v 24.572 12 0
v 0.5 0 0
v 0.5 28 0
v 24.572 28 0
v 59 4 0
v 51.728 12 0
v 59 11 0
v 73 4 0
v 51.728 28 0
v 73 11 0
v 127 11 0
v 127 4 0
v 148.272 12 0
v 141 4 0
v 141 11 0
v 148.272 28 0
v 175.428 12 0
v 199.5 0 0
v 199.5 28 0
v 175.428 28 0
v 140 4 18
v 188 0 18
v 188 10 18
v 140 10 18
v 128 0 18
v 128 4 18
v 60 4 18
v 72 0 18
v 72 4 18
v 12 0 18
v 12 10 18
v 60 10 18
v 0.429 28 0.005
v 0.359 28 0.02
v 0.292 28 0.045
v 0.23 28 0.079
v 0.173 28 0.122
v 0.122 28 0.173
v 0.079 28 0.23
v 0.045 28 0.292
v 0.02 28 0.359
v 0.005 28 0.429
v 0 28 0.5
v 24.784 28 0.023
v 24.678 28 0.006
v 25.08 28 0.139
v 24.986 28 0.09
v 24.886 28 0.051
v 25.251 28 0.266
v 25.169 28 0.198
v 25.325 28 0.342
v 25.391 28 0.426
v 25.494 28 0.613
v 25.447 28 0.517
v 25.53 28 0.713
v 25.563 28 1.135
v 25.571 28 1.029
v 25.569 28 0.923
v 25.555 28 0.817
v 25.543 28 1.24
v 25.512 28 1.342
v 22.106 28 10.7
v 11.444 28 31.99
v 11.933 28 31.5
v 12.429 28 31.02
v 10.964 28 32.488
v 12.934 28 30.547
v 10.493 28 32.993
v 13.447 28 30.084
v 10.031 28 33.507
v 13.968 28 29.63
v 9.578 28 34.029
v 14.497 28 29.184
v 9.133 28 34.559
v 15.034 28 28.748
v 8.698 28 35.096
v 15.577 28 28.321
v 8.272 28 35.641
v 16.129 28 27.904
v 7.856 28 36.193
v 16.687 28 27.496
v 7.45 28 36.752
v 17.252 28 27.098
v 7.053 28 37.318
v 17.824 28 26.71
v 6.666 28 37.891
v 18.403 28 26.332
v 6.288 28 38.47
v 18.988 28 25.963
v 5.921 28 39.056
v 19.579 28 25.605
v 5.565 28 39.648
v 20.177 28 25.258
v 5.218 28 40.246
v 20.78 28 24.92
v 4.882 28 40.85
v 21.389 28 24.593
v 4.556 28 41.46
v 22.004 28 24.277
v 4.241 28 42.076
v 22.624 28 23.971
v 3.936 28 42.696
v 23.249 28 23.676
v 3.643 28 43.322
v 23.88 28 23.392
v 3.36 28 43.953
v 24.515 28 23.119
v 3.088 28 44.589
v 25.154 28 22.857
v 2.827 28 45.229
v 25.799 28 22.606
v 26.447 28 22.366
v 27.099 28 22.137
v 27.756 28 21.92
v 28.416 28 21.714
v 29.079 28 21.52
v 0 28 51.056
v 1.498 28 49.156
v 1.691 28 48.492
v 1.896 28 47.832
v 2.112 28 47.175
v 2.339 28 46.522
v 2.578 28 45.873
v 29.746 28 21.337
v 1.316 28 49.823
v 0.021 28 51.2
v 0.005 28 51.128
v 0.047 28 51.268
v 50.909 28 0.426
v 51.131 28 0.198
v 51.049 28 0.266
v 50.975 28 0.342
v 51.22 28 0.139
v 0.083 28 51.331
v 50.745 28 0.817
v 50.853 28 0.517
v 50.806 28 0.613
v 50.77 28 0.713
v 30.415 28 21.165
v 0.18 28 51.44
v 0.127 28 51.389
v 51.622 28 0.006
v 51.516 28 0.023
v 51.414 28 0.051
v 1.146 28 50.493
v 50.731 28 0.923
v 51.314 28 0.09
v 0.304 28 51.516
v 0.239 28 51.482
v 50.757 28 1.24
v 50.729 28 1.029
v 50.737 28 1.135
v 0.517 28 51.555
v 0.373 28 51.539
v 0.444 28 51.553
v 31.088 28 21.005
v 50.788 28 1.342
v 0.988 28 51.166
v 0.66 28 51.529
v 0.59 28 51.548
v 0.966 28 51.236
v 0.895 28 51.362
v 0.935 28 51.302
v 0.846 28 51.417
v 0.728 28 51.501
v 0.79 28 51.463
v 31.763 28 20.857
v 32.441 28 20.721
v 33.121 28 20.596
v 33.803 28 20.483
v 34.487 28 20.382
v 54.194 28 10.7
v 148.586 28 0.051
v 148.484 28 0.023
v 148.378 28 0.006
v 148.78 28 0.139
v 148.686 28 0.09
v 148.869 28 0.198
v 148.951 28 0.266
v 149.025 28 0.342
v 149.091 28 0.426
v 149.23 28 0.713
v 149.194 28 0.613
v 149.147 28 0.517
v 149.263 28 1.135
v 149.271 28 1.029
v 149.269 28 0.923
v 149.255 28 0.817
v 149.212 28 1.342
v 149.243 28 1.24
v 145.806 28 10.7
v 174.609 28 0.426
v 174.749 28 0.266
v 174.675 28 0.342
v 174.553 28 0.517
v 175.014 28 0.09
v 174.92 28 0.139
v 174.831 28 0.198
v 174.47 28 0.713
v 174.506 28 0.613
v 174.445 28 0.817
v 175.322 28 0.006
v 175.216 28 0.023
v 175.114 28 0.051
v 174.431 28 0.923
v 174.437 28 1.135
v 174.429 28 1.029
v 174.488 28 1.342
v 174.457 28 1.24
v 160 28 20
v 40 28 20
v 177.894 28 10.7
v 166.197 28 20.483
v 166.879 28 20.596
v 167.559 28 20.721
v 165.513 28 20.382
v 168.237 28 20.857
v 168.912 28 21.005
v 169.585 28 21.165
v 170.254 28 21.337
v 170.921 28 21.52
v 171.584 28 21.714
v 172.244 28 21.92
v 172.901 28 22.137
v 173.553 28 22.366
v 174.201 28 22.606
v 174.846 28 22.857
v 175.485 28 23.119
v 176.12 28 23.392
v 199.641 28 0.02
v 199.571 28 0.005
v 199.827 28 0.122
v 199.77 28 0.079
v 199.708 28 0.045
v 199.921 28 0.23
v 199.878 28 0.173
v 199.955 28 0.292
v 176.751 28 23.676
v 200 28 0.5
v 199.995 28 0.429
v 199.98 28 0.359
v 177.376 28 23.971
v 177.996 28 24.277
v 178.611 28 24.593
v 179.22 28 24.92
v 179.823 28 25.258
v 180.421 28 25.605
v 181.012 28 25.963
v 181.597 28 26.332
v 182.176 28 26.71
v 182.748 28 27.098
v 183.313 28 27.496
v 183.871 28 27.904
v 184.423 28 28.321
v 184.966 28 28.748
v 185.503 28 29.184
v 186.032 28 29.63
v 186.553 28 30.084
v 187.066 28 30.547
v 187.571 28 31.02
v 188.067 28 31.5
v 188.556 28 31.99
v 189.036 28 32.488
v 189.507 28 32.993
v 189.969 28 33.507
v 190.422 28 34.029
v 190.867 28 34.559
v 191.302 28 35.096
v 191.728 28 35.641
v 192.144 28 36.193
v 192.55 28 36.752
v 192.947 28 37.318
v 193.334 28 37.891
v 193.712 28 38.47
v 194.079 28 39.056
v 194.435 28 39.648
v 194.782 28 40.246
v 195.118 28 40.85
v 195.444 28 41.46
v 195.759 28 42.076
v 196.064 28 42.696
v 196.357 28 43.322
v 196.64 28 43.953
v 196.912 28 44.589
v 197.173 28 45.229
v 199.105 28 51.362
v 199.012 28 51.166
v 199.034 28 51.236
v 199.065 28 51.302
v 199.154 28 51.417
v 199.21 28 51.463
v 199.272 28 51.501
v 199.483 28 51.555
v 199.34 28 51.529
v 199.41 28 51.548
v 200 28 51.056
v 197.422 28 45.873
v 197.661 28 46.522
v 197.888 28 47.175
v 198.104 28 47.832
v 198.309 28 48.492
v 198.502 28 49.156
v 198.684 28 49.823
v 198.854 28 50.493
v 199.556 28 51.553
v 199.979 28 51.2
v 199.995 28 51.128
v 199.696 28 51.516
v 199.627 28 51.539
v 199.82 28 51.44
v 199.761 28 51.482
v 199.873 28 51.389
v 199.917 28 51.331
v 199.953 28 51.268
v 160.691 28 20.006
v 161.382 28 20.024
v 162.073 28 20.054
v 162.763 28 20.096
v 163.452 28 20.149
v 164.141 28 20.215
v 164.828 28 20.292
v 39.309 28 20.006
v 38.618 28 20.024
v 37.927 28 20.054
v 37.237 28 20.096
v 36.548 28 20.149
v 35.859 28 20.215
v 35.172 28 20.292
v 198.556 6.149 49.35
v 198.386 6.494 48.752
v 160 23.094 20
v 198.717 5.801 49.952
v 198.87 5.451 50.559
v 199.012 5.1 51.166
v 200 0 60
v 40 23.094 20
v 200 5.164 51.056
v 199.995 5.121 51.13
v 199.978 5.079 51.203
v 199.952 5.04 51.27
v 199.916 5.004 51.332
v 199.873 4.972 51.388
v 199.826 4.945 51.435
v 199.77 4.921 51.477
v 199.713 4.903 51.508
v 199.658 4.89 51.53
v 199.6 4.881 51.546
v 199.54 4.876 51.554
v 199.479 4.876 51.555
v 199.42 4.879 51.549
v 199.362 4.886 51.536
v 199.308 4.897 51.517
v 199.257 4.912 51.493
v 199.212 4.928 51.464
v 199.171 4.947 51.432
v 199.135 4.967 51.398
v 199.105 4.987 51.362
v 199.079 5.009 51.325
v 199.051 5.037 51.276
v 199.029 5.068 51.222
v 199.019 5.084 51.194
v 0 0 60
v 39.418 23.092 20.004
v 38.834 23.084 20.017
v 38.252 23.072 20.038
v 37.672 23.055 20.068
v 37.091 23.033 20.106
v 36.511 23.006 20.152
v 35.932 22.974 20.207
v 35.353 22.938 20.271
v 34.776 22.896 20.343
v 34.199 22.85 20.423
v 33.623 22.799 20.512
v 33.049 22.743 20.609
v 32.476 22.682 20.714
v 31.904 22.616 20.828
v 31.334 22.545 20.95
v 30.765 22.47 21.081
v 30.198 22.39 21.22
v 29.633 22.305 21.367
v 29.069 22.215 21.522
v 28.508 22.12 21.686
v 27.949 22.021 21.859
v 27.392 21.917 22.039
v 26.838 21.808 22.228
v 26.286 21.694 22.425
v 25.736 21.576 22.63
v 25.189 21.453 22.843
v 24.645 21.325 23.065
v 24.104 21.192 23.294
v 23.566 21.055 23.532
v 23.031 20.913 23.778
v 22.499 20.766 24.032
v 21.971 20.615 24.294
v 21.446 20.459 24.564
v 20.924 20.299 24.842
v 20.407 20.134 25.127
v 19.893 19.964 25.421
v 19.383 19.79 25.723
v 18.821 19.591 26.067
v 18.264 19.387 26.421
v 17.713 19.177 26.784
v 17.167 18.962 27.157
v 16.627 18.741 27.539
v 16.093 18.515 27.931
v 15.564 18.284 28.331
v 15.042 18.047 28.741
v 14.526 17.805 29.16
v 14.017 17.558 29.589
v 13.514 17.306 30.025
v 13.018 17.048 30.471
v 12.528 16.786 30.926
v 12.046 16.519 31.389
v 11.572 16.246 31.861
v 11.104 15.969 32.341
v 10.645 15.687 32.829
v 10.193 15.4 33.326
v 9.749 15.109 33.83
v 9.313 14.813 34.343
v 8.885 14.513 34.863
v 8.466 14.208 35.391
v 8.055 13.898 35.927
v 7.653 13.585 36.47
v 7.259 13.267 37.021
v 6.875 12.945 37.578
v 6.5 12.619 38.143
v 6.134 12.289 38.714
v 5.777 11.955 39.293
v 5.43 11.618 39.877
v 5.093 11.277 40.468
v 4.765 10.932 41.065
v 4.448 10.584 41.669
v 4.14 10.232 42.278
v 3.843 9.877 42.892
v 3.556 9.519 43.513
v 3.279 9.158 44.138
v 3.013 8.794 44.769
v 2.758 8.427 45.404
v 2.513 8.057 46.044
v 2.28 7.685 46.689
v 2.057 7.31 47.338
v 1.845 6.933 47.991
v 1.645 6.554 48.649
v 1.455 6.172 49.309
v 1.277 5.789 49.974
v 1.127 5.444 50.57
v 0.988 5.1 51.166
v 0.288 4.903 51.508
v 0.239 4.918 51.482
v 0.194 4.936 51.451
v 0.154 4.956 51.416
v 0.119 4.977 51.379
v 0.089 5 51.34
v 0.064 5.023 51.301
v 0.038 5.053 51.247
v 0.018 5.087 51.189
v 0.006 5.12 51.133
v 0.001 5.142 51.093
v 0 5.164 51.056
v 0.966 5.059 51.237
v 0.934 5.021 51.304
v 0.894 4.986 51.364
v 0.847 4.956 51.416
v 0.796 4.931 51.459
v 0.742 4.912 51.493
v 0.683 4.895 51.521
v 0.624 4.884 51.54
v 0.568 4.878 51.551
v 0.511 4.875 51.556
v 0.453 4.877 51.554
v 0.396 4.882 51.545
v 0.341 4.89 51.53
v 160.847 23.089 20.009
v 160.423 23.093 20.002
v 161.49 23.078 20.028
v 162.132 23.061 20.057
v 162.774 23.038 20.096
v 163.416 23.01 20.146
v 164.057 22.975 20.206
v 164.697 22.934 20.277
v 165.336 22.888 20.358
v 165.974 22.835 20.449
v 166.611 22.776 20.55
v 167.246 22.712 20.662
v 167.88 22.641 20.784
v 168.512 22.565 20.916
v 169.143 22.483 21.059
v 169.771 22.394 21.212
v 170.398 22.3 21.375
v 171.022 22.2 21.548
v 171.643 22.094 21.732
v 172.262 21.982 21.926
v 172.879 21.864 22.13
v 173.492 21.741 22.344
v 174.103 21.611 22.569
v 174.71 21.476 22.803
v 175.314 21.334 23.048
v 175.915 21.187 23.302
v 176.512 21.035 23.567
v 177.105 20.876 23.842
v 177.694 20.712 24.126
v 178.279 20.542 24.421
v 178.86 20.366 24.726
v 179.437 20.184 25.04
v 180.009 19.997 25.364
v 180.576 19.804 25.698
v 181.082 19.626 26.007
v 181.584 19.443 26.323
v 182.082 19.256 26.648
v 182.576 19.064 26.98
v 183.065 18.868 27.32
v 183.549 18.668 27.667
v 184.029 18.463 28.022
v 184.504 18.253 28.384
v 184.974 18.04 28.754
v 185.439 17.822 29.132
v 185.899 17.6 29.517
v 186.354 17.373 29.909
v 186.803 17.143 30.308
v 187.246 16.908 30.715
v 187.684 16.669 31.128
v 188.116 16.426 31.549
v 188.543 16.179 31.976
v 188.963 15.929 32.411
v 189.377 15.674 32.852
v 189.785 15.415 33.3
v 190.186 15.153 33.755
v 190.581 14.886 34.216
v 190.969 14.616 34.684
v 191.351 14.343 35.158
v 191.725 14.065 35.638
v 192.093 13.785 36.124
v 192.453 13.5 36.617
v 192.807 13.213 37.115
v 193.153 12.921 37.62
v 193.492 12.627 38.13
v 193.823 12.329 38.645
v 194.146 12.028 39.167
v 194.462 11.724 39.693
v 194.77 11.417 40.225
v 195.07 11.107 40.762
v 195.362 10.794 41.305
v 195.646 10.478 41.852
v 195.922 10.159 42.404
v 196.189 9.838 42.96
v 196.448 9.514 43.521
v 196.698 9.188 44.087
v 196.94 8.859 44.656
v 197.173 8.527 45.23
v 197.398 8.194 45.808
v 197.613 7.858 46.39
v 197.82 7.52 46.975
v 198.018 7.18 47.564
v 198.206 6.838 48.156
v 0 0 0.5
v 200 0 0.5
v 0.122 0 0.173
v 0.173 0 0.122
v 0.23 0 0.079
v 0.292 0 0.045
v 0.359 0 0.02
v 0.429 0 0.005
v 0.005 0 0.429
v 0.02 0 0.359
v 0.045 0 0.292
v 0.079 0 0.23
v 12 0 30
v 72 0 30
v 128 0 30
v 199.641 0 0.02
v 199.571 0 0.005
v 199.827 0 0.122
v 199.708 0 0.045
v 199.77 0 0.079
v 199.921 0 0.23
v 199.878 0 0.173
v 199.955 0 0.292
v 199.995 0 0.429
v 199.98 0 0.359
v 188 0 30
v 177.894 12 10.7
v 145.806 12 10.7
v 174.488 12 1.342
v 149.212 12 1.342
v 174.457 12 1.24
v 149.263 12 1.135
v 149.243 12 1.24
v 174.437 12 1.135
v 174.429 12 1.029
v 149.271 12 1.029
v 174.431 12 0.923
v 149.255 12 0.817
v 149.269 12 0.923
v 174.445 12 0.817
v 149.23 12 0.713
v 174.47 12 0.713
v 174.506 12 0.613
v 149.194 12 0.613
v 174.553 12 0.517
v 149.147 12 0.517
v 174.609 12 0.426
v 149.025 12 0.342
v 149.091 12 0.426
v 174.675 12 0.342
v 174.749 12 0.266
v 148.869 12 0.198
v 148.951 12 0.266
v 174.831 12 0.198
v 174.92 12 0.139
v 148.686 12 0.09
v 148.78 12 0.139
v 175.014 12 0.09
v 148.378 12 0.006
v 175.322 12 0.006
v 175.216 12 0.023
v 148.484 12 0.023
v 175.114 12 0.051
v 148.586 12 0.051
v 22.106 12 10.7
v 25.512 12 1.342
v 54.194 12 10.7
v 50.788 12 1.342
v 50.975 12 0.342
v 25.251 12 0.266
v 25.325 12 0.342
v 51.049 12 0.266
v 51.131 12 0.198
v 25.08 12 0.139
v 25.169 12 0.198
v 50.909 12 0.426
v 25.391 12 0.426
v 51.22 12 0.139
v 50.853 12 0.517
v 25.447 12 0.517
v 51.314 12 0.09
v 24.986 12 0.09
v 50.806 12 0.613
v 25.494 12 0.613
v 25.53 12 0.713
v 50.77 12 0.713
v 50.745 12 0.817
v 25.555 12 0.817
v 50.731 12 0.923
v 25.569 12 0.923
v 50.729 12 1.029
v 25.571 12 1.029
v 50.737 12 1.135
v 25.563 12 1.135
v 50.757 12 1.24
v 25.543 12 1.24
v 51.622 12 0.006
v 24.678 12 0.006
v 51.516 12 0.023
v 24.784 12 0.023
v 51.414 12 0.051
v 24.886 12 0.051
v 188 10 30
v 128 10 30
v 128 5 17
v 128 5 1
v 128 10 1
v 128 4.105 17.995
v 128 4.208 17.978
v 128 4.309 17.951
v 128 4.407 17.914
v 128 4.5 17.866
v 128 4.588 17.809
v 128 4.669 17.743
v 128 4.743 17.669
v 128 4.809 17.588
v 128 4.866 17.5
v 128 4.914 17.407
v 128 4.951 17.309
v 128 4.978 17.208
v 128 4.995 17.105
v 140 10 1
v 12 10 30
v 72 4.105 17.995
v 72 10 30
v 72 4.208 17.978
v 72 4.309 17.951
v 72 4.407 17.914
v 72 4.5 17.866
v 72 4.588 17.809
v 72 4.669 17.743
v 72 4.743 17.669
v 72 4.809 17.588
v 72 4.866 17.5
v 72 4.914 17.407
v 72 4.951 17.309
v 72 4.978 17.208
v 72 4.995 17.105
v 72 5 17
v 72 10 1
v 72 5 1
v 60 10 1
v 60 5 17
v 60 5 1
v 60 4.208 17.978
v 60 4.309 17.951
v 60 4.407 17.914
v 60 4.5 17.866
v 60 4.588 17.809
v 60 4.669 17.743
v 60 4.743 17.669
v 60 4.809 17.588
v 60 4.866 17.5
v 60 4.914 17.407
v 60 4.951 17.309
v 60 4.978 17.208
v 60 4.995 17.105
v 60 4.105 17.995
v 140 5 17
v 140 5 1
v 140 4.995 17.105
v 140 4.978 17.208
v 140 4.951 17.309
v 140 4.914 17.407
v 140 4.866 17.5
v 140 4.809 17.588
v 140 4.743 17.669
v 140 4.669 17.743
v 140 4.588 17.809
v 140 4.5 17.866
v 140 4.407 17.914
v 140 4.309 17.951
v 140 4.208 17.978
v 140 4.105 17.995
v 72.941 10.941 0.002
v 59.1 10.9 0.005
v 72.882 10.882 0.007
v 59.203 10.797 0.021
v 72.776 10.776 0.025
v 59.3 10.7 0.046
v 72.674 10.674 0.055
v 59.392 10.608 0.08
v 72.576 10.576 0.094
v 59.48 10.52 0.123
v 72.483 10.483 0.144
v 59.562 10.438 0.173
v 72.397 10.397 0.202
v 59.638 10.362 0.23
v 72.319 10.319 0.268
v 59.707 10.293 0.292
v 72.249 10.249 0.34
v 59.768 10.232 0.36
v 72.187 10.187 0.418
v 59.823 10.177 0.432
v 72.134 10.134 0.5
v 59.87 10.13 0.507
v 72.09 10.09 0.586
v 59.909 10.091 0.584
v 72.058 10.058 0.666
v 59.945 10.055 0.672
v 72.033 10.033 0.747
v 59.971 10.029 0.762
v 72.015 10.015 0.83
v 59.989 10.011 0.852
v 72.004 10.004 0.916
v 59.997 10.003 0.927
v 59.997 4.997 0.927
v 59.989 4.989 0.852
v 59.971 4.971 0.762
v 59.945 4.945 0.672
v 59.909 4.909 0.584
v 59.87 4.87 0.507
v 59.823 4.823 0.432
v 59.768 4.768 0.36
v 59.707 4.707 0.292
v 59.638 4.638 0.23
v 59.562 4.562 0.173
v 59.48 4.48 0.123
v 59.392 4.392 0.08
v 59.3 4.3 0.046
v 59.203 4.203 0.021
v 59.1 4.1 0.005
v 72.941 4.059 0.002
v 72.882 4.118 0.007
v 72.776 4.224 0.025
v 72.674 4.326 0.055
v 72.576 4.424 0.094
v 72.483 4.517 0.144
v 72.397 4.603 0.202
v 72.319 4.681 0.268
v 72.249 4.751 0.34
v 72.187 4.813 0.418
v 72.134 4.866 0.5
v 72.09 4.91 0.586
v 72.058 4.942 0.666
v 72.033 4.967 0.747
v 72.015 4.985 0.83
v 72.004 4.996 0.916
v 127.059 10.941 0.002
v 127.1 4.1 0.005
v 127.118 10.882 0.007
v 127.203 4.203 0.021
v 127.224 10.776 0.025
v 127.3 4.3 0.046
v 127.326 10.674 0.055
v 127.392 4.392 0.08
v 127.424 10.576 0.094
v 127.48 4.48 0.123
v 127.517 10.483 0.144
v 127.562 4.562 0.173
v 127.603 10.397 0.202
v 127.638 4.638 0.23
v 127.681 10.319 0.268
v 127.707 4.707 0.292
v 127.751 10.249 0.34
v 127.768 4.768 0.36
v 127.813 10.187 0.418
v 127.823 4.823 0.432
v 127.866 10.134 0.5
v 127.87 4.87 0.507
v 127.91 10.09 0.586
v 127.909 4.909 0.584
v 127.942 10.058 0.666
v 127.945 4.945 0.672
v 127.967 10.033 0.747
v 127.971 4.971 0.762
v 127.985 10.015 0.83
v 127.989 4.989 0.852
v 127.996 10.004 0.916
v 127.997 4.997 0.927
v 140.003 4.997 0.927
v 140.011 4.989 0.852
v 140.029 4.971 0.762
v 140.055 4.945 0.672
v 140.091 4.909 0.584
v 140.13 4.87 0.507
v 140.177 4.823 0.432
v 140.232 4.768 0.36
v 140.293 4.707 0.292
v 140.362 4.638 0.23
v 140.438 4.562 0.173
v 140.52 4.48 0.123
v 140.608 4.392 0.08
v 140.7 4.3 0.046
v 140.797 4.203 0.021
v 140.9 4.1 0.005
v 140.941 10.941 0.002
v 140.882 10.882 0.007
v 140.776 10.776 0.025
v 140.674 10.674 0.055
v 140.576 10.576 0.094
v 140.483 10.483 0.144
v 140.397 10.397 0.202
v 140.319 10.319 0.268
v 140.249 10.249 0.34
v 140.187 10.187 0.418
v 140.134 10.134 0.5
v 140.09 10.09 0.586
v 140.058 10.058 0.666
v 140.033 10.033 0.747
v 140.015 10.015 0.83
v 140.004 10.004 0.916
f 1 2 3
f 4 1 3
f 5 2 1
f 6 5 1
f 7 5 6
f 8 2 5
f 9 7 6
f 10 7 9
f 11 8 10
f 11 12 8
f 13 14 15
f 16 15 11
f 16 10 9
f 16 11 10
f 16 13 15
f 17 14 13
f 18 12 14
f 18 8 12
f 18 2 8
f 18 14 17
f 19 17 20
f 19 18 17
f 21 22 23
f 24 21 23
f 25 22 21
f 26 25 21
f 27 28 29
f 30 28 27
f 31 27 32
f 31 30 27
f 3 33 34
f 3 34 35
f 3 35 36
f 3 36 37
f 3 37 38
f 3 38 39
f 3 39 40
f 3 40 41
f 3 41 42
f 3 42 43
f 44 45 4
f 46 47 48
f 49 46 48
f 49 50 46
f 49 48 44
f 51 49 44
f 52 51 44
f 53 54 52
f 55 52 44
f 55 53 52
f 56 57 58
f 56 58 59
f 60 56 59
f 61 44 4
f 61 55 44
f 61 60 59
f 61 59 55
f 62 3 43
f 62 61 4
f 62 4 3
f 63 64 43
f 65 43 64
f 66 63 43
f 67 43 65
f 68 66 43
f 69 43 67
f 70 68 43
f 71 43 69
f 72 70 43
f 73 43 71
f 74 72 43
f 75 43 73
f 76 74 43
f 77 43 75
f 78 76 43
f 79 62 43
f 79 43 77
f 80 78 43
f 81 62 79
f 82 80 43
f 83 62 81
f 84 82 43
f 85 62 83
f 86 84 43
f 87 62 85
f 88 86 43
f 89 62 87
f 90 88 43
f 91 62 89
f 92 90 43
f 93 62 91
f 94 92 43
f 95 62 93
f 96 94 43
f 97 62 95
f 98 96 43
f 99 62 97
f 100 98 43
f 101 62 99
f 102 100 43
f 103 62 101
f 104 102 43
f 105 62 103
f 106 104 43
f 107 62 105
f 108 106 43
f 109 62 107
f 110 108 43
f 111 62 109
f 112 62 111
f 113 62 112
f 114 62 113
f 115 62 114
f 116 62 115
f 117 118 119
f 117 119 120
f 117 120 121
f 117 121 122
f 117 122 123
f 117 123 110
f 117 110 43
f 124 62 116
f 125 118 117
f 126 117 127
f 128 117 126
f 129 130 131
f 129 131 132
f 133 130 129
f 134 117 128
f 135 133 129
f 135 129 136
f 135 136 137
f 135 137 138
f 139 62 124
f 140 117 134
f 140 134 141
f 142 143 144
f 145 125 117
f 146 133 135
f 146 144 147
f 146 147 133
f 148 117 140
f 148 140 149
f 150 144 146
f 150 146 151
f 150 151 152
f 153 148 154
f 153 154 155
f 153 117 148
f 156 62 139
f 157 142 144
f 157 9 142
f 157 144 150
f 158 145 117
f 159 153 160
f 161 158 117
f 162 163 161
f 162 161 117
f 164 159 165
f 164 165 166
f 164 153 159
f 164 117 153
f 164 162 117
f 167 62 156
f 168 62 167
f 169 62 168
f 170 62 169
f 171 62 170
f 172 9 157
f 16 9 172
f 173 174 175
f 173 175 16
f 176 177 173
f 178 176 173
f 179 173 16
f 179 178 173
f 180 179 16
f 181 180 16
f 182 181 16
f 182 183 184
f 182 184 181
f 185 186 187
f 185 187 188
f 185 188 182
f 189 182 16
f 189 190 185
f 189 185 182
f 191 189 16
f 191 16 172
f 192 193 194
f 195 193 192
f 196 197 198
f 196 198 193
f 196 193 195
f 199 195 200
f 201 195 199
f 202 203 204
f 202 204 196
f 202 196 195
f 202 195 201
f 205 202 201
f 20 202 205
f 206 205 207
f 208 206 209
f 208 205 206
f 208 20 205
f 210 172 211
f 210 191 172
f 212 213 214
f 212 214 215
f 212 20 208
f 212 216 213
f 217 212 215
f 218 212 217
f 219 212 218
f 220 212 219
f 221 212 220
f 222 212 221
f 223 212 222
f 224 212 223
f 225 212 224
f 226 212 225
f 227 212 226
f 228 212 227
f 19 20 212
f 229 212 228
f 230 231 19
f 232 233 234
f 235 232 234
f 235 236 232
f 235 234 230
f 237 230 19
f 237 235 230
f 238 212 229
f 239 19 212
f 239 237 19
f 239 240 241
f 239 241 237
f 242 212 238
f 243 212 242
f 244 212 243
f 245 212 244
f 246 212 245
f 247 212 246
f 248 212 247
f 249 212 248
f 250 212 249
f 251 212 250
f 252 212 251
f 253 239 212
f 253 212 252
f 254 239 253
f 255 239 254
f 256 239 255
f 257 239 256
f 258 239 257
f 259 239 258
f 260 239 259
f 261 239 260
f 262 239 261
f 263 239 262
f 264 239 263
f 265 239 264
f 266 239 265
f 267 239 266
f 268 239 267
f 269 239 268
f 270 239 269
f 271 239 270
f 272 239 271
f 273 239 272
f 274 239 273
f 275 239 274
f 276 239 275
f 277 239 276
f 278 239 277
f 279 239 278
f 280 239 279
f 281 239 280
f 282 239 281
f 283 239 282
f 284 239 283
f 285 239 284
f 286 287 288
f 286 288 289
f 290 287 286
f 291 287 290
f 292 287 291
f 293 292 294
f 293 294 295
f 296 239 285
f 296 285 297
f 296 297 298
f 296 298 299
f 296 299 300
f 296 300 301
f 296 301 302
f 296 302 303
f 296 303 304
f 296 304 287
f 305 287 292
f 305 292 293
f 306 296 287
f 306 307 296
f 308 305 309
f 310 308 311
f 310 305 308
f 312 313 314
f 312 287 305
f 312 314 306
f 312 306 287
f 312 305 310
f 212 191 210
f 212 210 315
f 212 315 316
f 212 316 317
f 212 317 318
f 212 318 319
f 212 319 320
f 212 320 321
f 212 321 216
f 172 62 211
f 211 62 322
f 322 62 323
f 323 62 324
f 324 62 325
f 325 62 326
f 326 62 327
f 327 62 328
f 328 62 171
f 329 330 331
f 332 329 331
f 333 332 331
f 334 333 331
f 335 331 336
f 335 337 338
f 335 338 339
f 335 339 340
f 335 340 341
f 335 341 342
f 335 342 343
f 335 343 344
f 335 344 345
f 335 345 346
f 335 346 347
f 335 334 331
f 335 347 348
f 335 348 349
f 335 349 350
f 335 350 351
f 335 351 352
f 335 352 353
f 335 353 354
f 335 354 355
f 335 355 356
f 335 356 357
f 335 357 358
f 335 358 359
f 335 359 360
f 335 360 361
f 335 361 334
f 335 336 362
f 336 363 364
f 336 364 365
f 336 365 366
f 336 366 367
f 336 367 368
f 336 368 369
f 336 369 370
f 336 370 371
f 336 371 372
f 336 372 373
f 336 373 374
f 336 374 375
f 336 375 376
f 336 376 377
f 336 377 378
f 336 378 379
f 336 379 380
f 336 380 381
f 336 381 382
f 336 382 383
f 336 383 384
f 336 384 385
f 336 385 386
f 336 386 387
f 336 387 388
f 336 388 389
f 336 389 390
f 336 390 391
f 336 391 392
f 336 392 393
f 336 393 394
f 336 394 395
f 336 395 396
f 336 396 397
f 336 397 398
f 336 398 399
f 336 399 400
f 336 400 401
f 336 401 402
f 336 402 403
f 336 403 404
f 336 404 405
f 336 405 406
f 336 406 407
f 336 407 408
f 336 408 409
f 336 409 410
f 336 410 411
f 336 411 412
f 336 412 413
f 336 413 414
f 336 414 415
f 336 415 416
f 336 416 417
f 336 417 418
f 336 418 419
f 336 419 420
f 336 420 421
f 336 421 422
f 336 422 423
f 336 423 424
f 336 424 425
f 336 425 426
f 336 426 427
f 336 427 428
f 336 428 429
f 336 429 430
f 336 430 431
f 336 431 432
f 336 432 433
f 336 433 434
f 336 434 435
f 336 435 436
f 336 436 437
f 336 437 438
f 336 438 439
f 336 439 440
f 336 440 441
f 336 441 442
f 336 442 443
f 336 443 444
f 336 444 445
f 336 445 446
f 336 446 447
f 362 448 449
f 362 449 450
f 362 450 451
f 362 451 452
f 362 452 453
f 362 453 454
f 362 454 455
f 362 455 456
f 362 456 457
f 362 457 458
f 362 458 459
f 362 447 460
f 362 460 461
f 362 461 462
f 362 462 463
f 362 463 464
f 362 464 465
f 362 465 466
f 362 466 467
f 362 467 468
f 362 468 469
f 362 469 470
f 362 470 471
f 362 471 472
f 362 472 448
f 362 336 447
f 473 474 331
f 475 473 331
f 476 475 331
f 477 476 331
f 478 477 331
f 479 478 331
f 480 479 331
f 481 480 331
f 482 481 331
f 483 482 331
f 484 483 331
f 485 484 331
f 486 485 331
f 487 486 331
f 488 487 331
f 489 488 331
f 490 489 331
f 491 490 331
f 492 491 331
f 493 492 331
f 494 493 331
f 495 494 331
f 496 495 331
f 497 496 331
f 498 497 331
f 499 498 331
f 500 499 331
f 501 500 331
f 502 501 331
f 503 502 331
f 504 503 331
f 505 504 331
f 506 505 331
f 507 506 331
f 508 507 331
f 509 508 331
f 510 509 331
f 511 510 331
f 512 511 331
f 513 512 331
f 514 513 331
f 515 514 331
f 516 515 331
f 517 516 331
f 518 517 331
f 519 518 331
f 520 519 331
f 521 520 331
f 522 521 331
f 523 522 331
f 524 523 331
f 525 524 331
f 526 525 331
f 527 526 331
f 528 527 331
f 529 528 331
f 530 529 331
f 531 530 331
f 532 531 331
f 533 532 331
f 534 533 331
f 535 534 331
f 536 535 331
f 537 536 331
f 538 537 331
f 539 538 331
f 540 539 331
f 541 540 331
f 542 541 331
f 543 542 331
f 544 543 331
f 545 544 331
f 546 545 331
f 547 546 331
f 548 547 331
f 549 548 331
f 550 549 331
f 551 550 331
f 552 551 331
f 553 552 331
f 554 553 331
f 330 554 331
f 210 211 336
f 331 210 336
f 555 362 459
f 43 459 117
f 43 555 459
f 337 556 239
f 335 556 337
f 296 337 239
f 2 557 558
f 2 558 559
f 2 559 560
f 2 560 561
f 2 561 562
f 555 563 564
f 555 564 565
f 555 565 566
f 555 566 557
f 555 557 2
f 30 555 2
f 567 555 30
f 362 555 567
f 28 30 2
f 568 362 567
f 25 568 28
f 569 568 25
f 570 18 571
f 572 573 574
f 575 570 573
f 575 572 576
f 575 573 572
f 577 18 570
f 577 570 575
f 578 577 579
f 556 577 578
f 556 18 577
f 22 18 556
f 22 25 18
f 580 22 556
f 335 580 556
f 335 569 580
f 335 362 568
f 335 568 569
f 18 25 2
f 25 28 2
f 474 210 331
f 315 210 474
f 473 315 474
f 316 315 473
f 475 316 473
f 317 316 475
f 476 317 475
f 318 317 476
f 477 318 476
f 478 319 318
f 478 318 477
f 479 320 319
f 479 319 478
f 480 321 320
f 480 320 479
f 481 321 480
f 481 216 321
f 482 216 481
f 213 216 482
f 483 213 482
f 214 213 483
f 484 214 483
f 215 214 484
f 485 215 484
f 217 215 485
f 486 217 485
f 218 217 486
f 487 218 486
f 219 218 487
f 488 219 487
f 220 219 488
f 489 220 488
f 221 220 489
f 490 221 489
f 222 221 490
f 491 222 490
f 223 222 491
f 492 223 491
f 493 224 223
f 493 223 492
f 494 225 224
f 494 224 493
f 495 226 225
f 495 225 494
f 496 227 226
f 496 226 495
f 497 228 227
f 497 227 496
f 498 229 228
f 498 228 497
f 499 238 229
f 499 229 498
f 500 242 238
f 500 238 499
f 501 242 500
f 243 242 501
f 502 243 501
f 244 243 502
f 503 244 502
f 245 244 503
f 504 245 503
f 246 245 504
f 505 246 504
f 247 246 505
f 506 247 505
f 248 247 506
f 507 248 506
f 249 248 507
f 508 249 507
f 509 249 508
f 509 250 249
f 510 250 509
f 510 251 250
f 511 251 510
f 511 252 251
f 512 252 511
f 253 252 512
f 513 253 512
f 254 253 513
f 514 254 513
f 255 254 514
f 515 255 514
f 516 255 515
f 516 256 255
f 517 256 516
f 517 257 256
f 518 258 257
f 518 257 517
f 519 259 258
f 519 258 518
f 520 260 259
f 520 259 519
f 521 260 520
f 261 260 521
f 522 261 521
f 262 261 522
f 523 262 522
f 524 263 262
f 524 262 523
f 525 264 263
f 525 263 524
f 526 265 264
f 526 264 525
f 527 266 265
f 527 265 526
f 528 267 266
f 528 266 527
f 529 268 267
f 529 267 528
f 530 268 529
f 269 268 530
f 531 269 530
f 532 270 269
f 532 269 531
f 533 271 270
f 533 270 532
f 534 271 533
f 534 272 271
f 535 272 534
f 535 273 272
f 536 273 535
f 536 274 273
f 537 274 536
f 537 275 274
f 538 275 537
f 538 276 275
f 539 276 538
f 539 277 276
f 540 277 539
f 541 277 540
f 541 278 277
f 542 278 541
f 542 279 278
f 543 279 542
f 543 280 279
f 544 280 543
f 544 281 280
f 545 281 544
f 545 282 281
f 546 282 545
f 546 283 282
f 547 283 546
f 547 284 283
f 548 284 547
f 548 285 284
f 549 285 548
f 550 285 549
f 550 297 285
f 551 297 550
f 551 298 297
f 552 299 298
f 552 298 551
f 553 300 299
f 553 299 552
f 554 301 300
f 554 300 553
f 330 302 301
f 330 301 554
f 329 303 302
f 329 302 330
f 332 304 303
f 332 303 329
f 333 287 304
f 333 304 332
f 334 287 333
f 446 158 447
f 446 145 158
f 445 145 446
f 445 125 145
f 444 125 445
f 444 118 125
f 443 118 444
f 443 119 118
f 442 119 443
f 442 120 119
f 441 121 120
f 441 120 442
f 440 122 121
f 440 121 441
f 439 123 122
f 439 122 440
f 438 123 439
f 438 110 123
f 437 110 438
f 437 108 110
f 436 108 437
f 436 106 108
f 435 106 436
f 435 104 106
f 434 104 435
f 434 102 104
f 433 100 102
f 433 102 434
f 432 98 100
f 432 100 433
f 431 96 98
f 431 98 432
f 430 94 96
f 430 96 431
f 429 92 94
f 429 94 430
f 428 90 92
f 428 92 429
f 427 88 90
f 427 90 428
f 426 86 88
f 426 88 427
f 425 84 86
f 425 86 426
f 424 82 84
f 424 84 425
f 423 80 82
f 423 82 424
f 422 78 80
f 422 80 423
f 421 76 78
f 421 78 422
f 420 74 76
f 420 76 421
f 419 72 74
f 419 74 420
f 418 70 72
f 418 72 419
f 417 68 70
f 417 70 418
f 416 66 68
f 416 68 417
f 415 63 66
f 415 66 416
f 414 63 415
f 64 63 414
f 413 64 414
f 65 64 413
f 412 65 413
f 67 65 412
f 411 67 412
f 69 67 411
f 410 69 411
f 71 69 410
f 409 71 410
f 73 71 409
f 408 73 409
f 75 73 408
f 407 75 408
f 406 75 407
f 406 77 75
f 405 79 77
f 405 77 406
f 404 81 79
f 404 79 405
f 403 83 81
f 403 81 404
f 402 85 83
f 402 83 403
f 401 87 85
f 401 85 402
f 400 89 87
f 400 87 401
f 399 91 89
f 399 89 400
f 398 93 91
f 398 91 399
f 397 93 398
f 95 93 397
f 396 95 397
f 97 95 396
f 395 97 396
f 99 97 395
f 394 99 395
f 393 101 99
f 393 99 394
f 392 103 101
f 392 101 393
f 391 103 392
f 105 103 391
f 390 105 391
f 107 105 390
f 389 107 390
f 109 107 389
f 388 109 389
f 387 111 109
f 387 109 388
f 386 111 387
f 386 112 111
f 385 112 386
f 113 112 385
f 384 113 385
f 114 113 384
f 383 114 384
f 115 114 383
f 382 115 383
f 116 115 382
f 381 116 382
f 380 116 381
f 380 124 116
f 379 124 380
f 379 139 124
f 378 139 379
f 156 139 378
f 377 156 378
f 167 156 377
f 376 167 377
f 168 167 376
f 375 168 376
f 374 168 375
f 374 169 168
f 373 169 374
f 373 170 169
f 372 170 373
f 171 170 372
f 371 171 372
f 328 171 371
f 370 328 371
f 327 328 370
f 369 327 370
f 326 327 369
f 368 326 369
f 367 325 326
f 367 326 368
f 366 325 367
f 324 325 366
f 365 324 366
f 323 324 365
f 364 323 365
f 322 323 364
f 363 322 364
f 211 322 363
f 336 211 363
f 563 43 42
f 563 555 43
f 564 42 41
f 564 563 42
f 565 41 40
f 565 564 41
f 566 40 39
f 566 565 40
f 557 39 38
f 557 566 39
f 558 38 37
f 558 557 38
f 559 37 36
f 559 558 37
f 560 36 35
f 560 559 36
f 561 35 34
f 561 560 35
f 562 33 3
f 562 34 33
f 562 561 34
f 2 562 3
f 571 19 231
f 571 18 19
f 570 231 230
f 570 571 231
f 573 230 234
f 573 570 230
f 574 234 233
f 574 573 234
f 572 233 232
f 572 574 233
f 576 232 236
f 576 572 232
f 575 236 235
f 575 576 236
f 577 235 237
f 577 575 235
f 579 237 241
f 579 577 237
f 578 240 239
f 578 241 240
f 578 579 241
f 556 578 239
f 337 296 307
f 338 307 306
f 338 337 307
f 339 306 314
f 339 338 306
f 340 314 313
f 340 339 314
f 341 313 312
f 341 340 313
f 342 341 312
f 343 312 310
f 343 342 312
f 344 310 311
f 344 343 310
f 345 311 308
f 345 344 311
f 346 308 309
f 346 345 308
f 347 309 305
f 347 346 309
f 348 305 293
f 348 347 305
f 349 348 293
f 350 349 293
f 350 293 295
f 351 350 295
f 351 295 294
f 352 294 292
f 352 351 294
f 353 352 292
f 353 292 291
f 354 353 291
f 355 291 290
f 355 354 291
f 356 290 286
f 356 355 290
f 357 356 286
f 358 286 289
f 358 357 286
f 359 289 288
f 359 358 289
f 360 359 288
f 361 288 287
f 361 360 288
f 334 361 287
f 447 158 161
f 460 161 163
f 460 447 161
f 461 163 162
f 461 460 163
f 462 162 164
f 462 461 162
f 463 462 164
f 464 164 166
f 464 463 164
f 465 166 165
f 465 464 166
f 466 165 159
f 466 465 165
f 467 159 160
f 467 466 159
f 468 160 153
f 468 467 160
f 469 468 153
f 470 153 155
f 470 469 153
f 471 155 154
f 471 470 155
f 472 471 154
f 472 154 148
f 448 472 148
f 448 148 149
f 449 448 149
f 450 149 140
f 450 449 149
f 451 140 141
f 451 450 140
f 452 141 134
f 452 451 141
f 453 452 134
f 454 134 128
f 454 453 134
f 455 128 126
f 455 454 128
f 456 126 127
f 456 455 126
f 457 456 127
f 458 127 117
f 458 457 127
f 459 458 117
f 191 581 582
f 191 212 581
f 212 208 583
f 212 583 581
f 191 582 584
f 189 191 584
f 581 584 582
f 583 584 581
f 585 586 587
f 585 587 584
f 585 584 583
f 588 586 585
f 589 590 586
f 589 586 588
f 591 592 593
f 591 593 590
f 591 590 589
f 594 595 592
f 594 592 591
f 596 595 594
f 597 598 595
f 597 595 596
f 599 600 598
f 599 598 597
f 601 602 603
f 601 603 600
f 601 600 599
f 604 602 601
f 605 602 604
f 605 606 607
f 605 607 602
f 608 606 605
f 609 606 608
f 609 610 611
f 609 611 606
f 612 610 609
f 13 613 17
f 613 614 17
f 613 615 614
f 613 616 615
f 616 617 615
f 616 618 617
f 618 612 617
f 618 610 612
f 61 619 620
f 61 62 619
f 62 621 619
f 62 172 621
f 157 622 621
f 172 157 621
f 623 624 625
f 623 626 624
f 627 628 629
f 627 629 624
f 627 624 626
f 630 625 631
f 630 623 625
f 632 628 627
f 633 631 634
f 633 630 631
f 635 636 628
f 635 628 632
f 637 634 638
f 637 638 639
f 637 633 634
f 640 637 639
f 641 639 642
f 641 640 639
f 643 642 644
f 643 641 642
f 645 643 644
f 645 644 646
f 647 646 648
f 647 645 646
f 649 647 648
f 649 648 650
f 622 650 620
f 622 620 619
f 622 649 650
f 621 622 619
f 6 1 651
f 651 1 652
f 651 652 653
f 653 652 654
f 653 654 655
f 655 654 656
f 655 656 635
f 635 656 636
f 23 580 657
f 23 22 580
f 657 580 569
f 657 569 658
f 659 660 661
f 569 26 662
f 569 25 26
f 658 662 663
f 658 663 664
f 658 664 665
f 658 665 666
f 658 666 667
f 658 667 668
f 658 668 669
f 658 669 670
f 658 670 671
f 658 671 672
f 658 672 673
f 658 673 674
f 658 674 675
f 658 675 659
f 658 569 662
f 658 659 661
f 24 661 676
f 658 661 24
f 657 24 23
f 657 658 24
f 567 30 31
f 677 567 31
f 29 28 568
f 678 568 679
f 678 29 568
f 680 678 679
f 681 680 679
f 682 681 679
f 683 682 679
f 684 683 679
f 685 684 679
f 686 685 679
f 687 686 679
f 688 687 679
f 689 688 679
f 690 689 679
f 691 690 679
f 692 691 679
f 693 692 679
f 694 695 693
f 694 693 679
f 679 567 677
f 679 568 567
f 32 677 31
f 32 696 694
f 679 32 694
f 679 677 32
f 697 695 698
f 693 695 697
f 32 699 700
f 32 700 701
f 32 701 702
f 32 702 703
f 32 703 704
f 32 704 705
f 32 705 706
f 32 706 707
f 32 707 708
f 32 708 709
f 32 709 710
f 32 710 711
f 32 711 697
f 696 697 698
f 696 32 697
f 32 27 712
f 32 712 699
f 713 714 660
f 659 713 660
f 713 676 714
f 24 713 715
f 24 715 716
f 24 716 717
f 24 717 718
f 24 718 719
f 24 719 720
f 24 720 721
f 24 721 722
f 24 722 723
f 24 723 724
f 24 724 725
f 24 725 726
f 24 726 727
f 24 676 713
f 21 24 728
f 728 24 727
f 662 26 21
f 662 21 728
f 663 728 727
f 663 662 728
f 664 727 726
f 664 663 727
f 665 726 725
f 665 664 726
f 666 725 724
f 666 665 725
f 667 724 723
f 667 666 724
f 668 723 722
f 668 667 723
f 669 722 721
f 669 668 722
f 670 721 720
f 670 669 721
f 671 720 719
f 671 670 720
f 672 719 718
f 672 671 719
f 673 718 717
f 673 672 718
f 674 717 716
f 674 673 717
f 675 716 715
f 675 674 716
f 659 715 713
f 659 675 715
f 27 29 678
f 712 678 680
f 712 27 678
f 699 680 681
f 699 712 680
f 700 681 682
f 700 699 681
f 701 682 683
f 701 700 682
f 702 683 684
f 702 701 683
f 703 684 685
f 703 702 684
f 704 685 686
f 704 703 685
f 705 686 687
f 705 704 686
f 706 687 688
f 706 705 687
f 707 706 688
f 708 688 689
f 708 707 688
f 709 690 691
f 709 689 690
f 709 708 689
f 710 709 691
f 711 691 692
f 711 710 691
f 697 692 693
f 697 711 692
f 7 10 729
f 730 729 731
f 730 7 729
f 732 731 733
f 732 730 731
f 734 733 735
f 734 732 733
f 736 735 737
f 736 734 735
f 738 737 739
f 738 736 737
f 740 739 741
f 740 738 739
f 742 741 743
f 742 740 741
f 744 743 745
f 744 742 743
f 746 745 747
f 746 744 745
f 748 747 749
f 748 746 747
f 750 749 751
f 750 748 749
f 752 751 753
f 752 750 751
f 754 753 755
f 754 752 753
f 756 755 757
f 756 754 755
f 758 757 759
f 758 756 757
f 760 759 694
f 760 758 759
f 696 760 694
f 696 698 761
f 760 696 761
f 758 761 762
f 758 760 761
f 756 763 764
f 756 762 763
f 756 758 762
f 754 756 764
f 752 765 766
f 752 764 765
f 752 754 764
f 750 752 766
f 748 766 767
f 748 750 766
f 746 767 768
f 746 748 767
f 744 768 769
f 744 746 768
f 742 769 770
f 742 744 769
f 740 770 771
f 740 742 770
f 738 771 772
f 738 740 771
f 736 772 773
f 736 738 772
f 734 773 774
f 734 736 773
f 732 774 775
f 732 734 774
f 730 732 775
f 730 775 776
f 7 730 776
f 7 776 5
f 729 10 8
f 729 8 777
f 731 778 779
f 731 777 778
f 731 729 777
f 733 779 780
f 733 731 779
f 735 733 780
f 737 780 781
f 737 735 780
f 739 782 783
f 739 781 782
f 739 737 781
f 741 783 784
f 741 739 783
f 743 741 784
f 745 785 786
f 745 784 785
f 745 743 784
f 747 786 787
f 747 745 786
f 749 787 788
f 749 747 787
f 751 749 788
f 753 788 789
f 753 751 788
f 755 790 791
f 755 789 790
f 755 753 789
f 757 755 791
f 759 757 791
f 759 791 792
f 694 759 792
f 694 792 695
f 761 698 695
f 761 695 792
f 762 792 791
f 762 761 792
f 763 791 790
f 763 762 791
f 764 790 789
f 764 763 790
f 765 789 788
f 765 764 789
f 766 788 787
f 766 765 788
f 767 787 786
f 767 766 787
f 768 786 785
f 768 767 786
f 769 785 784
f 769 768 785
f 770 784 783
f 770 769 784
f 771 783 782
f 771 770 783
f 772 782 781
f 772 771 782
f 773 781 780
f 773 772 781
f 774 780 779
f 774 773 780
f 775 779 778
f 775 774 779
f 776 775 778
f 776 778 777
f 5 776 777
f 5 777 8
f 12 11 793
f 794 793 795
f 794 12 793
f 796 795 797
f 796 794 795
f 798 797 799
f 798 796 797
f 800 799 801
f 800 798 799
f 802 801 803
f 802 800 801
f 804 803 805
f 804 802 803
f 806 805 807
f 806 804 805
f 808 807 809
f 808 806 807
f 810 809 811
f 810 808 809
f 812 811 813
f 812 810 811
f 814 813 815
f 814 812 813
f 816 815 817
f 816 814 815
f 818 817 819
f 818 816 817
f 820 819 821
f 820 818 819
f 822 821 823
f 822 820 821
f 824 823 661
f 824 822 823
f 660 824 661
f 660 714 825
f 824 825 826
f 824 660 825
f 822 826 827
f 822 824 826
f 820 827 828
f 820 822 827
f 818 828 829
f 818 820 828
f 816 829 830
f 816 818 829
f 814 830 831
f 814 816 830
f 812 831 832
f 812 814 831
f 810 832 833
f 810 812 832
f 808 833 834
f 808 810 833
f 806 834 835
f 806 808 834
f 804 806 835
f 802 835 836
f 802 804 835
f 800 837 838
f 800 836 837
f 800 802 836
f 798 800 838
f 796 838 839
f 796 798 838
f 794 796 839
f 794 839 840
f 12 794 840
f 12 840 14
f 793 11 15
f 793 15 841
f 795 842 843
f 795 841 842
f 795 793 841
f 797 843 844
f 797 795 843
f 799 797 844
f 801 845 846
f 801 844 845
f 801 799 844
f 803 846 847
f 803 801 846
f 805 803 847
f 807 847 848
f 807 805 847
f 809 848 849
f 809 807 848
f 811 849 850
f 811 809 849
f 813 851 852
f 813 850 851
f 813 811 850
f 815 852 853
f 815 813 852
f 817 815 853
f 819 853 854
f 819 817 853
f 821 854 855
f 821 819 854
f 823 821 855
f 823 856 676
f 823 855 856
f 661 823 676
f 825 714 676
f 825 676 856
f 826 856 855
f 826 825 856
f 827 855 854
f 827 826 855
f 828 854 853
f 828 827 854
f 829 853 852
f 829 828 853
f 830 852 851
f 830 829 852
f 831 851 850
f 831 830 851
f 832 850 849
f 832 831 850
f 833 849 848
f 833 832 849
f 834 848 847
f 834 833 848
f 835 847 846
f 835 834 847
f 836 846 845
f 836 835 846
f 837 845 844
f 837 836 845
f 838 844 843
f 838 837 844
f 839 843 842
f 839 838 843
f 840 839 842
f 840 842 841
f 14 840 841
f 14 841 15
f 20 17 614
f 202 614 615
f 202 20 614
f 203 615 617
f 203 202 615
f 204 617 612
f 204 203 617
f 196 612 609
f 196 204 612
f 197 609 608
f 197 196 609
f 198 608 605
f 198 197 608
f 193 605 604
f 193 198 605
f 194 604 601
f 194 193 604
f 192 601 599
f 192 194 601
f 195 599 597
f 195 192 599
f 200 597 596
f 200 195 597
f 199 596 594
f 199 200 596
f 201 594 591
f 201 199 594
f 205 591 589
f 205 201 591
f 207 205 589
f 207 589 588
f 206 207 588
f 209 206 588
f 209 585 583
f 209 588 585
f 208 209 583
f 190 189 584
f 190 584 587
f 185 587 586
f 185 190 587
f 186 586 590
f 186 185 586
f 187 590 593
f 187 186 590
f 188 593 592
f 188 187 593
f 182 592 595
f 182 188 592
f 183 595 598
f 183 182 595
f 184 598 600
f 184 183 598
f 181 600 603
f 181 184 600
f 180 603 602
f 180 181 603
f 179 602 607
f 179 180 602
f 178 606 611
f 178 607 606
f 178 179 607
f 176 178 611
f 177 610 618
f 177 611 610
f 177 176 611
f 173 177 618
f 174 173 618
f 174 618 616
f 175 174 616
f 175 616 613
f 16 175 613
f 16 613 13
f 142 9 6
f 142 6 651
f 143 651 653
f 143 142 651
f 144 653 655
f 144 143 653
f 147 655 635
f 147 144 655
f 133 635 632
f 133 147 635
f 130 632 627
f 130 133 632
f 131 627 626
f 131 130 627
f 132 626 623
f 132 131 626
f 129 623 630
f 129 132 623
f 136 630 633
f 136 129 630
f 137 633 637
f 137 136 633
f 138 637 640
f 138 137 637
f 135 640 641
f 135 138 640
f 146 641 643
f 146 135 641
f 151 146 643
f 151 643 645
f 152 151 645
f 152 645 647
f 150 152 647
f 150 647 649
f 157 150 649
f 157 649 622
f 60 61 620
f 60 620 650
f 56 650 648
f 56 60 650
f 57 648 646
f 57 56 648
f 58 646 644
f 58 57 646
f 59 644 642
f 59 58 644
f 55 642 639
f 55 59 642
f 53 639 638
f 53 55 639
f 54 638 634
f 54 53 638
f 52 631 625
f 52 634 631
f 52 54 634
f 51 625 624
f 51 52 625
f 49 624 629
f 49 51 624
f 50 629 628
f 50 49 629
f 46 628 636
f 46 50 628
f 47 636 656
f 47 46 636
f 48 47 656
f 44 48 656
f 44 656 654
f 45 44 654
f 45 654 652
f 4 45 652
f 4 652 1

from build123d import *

# Parameters (mm, degrees)
SKETCH_1_W          = 200
SKETCH_1_H          = 60
EXTRUDE_1_DEPTH     = 28
CUT_EXTRUDE_1_DEPTH = 211.675105316
EXTRUDE_2_REACH     = 212.675
FILLET_1_R          = 0.5
CUT_EXTRUDE_START   = 12
CUT_EXTRUDE_2_DEPTH = 199.675105316
CUT_EXTRUDE_START_2 = 10
SKETCH_5_W          = 60
SKETCH_5_H          = 12
CUT_EXTRUDE_3_DEPTH = 221.675105316
SKETCH_6_W          = 12
SKETCH_6_H          = 5
CUT_EXTRUDE_4_DEPTH = 30
FILLET_2_R          = 1


with BuildPart() as part:
    # 草图1 → 凸台-拉伸1 (new body)
    with BuildSketch(Plane(origin=(0, 0, 0), x_dir=(1, 0, 0), z_dir=(0, 1, 0))):
        with Locations((100, -30)):
            Rectangle(SKETCH_1_W, SKETCH_1_H)
    extrude(amount=EXTRUDE_1_DEPTH)

    # 草图2 → 切除-拉伸1 (cut, through all)
    with BuildSketch(Plane(origin=(0, 0, 0), x_dir=(0, 0, -1), z_dir=(1, 0, 0))):
        Polygon((-60, 0), (-20, 23.094010768), (-20, 28), (-60, 28), align=None)
    extrude(amount=CUT_EXTRUDE_1_DEPTH, mode=Mode.SUBTRACT)

    # 凸台-拉伸2: up to this face of the body (flat: up to its plane)
    extrude_2_end = Plane(part.part.faces().sort_by_distance((100, 28, 10))[0])
    # 草图3 → 凸台-拉伸2 (add, up to the picked face)
    with BuildSketch(Plane(origin=(0, 0, 0), x_dir=(1, 0, 0), z_dir=(0, 1, 0)), mode=Mode.PRIVATE) as extrude_2_sk1:
        with BuildLine():
            Line((0, -60), (0, -20))
            Line((0, -20), (40, -20))
            ThreePointArc((40, -20), (11.715728753, -31.715728753), (0, -60))
        make_face()
    extrude_2_tool1 = split(extrude(extrude_2_sk1.sketch, amount=EXTRUDE_2_REACH, mode=Mode.PRIVATE), bisect_by=extrude_2_end, keep=Keep.BOTH, mode=Mode.PRIVATE)
    # 草图3 → 凸台-拉伸2 (add, up to the picked face)
    with BuildSketch(Plane(origin=(0, 0, 0), x_dir=(1, 0, 0), z_dir=(0, 1, 0)), mode=Mode.PRIVATE) as extrude_2_sk2:
        with BuildLine():
            Line((200, -20), (160, -20))
            ThreePointArc((160, -20), (188.284271247, -31.715728753), (200, -60))
            Line((200, -60), (200, -20))
        make_face()
    extrude_2_tool2 = split(extrude(extrude_2_sk2.sketch, amount=EXTRUDE_2_REACH, mode=Mode.PRIVATE), bisect_by=extrude_2_end, keep=Keep.BOTH, mode=Mode.PRIVATE)
    add(extrude_2_tool1.solids().sort_by(Axis((8.934718, 0, 28.934718), (0, 1, 0)))[0])
    add(extrude_2_tool2.solids().sort_by(Axis((191.065282, 0, 28.934718), (0, 1, 0)))[0])

    # 圆角1
    # the kernel refuses this fillet: 0.5 mm, written as the material it takes off along each edge
    with BuildSketch(Plane(origin=(200, -22.360679775, 60), x_dir=(-0.11111111111111022, 0, -0.9938079899999066), z_dir=(0, 1, 0))) as fillet_1_piece_1_section:
        with BuildLine():
            CenterArc((8.944444444, -0.496903995), FILLET_1_R, 96.379370208, 167.241259583)
            Line((8.888888889, -0.99380799), (0, 0))
            ThreePointArc((0, 0), (4.444444444, -0.2476804), (8.888888889, 0))
        make_face()
    fillet_1_piece_1 = extrude(amount=72.72135955, mode=Mode.PRIVATE)
    fillet_1_piece_1 = split(fillet_1_piece_1, bisect_by=Plane(origin=(199.731100006, 6.705360676, 48.385974626), z_dir=(0, 0.8660254037844379, 0.5000000000000012)), keep=Keep.TOP, mode=Mode.PRIVATE)
    add(fillet_1_piece_1, mode=Mode.SUBTRACT)
    with BuildSketch(Plane(origin=(0, -22.360679775, 60), x_dir=(0.11111111111111158, 0, -0.9938079899999065), z_dir=(0, 1, 0))) as fillet_1_piece_2_section:
        with BuildLine():
            CenterArc((8.944444444, 0.496903995), FILLET_1_R, 96.379370208, 167.241259583)
            Line((8.888888889, 0.99380799), (0, 0))
            ThreePointArc((0, 0), (4.444444444, 0.2476804), (8.888888889, 0))
        make_face()
    fillet_1_piece_2 = extrude(amount=72.72135955, mode=Mode.PRIVATE)
    fillet_1_piece_2 = split(fillet_1_piece_2, bisect_by=Plane(origin=(0.268899994, 6.705360676, 48.385974626), z_dir=(0, 0.8660254037844379, 0.5000000000000012)), keep=Keep.TOP, mode=Mode.PRIVATE)
    add(fillet_1_piece_2, mode=Mode.SUBTRACT)
    with BuildSketch(Plane(origin=(0, -1.25, 0), x_dir=(1, 0, 0), z_dir=(0, 1, 0))) as fillet_1_piece_3:
        with BuildLine():
            CenterArc((FILLET_1_R, -FILLET_1_R), FILLET_1_R, 90, 90)
            Line((0, -FILLET_1_R), (0, 0))
            Line((0, 0), (FILLET_1_R, 0))
        make_face()
    extrude(amount=30.5, mode=Mode.SUBTRACT)
    with BuildSketch(Plane(origin=(200, -1.25, 0), x_dir=(-1, 0, 0), z_dir=(0, 1, 0))) as fillet_1_piece_4:
        with BuildLine():
            CenterArc((FILLET_1_R, FILLET_1_R), FILLET_1_R, 180, 90)
            Line((0, FILLET_1_R), (0, 0))
            Line((0, 0), (FILLET_1_R, 0))
        make_face()
    extrude(amount=30.5, mode=Mode.SUBTRACT)

    # 草图4 → 切除-拉伸2 (cut, through all)
    with BuildSketch(Plane(origin=(0, 0, 0), x_dir=(1, 0, 0), z_dir=(0, 1, 0)).offset(CUT_EXTRUDE_START)):
        Polygon((26, 0), (22.105518493, -10.7), (54.194481507, -10.7), (50.3, 0), align=None)
        Polygon((145.805518493, -10.7), (149.7, 0), (174, 0), (177.894481507, -10.7), align=None)
    extrude(amount=CUT_EXTRUDE_2_DEPTH, mode=Mode.SUBTRACT)

    # 草图5 → 切除-拉伸3 (cut, through all)
    with BuildSketch(Plane(origin=(0, 0, 0), x_dir=(1, 0, 0), z_dir=(0, 1, 0)).offset(CUT_EXTRUDE_START_2)):
        with Locations((42, -24)):
            Rectangle(SKETCH_5_W, SKETCH_5_H)
        with Locations((158, -24)):
            Rectangle(SKETCH_5_W, SKETCH_5_H)
    extrude(amount=-CUT_EXTRUDE_3_DEPTH, mode=Mode.SUBTRACT)

    # 草图6 → 切除-拉伸4 (cut)
    with BuildSketch(Plane.XY):
        with Locations((66, 7.5)):
            Rectangle(SKETCH_6_W, SKETCH_6_H)
        with Locations((134, 7.5)):
            Rectangle(SKETCH_6_W, SKETCH_6_H)
    extrude(amount=CUT_EXTRUDE_4_DEPTH, mode=Mode.SUBTRACT)

    # 圆角2
    fillet_2_edges = [part.edges().sort_by_distance(p)[0] for p in [
        (50.3, 20, 0),
        (26, 20, 0),
        (174, 20, 0),
        (149.7, 20, 0),
        (66, 5, 0),
        (66, 10, 0),
        (60, 7.5, 0),
        (72, 7.5, 0),
        (66, 5, 18),
        (134, 10, 0),
        (134, 5, 0),
        (128, 7.5, 0),
        (140, 7.5, 0),
        (134, 5, 18),
    ]]
    fillet(fillet_2_edges, radius=FILLET_2_R)


solid = part.part
